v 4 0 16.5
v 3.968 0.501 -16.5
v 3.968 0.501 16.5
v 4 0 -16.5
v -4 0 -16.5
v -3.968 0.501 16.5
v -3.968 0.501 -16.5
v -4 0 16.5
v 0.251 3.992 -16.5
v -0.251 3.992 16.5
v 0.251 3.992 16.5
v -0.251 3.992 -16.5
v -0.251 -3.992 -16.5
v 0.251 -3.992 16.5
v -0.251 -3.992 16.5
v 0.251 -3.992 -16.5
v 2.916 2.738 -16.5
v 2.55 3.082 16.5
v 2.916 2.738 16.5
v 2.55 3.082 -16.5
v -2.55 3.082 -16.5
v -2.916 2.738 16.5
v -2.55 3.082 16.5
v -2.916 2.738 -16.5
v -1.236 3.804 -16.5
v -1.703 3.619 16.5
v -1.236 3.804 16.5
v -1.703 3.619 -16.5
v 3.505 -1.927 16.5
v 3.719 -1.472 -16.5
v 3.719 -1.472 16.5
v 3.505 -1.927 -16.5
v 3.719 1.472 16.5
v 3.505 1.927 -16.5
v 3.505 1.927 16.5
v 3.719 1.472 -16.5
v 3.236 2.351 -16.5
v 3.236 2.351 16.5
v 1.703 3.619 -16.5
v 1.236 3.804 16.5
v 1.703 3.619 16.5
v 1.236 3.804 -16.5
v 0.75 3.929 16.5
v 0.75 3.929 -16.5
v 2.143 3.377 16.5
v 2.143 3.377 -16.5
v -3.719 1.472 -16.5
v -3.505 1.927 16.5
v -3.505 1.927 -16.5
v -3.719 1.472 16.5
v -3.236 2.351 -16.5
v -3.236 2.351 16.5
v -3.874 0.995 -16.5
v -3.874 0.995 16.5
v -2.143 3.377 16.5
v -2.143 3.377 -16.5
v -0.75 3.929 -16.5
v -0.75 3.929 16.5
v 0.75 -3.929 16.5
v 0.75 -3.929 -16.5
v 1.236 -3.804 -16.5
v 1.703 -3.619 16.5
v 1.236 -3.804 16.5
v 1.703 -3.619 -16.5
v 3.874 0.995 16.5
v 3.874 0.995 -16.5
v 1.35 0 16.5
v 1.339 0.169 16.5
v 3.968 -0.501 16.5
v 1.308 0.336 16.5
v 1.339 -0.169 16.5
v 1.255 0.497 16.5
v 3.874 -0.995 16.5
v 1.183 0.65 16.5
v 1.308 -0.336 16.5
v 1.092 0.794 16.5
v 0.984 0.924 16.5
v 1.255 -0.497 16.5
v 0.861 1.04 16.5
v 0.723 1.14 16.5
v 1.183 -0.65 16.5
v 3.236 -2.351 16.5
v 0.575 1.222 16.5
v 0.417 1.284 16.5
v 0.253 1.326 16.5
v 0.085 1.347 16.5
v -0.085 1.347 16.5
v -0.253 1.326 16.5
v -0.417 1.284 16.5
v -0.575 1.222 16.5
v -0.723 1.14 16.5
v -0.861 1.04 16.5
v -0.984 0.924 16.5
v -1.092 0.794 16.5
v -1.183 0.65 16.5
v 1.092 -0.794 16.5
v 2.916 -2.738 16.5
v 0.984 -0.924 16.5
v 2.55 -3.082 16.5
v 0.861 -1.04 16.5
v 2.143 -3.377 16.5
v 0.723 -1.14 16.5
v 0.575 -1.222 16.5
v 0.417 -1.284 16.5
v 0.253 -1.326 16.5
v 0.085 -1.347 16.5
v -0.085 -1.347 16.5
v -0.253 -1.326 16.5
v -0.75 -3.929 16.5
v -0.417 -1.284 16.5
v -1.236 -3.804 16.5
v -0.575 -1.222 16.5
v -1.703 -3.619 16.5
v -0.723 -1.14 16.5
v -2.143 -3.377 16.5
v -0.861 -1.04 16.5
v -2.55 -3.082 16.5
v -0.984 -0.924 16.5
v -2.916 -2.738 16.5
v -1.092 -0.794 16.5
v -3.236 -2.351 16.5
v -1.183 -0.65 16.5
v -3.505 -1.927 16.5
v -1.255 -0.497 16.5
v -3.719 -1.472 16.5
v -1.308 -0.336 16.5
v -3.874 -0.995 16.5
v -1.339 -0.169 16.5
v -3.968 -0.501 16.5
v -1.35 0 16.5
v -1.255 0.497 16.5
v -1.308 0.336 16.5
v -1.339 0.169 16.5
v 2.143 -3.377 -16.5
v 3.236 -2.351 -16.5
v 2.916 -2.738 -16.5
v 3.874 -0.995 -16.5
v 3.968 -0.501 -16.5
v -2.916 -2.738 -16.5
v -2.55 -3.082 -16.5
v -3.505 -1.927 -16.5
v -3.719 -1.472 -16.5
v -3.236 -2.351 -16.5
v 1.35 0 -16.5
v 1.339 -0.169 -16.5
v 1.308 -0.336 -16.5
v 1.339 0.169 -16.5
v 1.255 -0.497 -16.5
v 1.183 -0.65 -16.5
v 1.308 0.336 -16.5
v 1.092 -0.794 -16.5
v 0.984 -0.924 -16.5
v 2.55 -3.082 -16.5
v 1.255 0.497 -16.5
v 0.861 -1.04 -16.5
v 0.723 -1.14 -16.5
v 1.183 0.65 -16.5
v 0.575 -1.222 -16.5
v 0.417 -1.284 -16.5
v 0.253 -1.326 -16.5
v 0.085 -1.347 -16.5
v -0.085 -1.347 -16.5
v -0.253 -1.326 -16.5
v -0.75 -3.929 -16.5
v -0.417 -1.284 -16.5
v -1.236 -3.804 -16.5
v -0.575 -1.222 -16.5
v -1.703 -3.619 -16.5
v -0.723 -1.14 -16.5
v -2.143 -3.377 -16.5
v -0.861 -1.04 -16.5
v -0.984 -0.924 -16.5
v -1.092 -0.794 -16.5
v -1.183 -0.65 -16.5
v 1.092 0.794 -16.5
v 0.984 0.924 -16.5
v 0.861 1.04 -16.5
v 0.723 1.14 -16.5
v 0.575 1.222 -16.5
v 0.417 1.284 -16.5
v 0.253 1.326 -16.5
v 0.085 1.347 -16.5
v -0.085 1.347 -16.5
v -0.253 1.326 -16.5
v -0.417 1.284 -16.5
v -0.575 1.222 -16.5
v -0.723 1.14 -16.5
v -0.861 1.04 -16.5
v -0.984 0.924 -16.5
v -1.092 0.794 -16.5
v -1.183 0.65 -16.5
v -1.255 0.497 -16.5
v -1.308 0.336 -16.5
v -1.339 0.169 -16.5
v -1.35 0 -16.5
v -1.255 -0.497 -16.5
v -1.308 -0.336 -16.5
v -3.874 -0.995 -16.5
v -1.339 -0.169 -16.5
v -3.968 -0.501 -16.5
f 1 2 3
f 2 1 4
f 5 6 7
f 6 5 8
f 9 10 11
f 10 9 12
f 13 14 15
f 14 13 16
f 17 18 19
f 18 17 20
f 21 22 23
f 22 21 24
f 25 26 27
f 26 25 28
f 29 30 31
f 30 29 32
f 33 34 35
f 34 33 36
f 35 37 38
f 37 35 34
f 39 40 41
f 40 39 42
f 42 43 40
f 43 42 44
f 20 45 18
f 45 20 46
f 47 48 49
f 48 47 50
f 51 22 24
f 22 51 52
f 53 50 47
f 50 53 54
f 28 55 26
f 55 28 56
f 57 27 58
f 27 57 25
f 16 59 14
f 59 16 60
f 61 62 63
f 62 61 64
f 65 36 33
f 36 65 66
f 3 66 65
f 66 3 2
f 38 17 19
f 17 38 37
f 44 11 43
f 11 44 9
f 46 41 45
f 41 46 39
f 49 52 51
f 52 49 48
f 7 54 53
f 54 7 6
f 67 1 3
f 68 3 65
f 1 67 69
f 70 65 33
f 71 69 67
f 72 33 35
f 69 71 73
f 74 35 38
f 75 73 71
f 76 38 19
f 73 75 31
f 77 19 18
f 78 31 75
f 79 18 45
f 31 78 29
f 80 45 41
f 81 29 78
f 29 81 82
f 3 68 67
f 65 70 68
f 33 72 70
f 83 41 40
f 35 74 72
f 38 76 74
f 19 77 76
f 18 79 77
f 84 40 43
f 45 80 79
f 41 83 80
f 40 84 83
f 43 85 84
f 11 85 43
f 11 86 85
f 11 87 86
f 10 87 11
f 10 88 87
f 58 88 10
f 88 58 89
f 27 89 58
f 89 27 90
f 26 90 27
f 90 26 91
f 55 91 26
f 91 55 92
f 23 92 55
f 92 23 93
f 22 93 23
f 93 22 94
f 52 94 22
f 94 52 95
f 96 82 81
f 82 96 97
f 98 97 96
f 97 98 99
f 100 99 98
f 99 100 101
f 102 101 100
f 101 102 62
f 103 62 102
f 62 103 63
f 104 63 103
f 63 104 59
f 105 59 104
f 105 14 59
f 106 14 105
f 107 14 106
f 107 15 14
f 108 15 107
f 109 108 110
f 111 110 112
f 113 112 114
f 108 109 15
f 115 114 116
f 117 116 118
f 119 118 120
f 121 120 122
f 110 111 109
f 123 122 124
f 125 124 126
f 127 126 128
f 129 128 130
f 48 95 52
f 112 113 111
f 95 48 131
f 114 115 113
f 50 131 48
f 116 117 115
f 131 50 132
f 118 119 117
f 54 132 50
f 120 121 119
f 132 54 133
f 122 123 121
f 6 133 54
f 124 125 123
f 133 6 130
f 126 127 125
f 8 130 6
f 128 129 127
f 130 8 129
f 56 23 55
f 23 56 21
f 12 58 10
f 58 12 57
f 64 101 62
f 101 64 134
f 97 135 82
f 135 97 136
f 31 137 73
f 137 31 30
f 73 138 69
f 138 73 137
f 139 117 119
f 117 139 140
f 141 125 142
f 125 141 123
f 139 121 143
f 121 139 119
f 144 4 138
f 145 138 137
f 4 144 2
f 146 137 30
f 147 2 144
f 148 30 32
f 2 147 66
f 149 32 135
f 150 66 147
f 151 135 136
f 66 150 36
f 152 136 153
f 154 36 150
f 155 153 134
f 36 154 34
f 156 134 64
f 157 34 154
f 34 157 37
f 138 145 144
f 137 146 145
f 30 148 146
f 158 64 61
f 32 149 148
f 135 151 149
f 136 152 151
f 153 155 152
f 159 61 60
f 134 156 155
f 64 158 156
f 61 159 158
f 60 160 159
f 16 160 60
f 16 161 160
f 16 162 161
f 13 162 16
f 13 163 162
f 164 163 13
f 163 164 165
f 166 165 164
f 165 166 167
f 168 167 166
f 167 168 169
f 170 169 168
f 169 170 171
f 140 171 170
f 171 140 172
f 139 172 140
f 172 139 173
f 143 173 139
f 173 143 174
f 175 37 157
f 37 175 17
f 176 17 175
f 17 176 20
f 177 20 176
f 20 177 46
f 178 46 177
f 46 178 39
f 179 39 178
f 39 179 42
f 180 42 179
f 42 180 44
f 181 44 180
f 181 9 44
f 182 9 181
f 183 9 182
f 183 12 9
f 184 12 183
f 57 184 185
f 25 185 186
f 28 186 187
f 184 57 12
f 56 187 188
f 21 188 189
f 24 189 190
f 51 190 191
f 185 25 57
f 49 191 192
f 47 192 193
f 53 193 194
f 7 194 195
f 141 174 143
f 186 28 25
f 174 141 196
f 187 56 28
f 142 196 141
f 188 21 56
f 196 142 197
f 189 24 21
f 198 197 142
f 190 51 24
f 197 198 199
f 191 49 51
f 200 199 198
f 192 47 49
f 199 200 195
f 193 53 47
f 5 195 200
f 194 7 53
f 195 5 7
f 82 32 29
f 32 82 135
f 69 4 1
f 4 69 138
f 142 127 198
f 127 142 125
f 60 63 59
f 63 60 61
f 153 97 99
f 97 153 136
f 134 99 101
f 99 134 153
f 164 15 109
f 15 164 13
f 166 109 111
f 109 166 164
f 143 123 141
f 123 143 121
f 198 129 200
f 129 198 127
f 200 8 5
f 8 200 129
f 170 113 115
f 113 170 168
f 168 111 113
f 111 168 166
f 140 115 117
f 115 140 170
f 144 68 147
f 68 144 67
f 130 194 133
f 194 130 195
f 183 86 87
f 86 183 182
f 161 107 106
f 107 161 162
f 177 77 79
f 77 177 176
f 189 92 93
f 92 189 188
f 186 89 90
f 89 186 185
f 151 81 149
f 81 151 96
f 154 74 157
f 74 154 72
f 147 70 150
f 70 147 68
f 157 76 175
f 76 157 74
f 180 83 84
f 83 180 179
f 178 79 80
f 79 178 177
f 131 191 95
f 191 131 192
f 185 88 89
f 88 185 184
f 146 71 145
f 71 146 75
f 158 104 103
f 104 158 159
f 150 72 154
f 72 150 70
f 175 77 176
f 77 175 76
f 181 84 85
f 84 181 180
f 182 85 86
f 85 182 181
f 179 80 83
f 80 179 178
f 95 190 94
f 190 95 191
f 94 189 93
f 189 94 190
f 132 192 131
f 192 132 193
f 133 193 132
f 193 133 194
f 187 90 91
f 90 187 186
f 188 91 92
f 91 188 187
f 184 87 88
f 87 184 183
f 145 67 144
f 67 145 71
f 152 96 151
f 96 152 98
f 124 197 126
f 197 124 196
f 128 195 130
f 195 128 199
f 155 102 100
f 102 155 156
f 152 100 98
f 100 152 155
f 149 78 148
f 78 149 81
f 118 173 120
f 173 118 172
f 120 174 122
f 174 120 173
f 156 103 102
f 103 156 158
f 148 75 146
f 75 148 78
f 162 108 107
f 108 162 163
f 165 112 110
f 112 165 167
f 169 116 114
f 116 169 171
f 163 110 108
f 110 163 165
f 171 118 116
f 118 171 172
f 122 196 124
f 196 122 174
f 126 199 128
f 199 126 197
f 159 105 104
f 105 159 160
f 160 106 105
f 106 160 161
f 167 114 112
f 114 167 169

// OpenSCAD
$fn = 50;


difference() {
	union() {
		translate(v = [0, 0, -16.5000000000]) {
			cylinder(h = 33, r = 4.0000000000);
		}
	}
	union() {
		translate(v = [0, 0, -100.0000000000]) {
			cylinder(h = 200, r = 1.3500000000);
		}
	}
}
